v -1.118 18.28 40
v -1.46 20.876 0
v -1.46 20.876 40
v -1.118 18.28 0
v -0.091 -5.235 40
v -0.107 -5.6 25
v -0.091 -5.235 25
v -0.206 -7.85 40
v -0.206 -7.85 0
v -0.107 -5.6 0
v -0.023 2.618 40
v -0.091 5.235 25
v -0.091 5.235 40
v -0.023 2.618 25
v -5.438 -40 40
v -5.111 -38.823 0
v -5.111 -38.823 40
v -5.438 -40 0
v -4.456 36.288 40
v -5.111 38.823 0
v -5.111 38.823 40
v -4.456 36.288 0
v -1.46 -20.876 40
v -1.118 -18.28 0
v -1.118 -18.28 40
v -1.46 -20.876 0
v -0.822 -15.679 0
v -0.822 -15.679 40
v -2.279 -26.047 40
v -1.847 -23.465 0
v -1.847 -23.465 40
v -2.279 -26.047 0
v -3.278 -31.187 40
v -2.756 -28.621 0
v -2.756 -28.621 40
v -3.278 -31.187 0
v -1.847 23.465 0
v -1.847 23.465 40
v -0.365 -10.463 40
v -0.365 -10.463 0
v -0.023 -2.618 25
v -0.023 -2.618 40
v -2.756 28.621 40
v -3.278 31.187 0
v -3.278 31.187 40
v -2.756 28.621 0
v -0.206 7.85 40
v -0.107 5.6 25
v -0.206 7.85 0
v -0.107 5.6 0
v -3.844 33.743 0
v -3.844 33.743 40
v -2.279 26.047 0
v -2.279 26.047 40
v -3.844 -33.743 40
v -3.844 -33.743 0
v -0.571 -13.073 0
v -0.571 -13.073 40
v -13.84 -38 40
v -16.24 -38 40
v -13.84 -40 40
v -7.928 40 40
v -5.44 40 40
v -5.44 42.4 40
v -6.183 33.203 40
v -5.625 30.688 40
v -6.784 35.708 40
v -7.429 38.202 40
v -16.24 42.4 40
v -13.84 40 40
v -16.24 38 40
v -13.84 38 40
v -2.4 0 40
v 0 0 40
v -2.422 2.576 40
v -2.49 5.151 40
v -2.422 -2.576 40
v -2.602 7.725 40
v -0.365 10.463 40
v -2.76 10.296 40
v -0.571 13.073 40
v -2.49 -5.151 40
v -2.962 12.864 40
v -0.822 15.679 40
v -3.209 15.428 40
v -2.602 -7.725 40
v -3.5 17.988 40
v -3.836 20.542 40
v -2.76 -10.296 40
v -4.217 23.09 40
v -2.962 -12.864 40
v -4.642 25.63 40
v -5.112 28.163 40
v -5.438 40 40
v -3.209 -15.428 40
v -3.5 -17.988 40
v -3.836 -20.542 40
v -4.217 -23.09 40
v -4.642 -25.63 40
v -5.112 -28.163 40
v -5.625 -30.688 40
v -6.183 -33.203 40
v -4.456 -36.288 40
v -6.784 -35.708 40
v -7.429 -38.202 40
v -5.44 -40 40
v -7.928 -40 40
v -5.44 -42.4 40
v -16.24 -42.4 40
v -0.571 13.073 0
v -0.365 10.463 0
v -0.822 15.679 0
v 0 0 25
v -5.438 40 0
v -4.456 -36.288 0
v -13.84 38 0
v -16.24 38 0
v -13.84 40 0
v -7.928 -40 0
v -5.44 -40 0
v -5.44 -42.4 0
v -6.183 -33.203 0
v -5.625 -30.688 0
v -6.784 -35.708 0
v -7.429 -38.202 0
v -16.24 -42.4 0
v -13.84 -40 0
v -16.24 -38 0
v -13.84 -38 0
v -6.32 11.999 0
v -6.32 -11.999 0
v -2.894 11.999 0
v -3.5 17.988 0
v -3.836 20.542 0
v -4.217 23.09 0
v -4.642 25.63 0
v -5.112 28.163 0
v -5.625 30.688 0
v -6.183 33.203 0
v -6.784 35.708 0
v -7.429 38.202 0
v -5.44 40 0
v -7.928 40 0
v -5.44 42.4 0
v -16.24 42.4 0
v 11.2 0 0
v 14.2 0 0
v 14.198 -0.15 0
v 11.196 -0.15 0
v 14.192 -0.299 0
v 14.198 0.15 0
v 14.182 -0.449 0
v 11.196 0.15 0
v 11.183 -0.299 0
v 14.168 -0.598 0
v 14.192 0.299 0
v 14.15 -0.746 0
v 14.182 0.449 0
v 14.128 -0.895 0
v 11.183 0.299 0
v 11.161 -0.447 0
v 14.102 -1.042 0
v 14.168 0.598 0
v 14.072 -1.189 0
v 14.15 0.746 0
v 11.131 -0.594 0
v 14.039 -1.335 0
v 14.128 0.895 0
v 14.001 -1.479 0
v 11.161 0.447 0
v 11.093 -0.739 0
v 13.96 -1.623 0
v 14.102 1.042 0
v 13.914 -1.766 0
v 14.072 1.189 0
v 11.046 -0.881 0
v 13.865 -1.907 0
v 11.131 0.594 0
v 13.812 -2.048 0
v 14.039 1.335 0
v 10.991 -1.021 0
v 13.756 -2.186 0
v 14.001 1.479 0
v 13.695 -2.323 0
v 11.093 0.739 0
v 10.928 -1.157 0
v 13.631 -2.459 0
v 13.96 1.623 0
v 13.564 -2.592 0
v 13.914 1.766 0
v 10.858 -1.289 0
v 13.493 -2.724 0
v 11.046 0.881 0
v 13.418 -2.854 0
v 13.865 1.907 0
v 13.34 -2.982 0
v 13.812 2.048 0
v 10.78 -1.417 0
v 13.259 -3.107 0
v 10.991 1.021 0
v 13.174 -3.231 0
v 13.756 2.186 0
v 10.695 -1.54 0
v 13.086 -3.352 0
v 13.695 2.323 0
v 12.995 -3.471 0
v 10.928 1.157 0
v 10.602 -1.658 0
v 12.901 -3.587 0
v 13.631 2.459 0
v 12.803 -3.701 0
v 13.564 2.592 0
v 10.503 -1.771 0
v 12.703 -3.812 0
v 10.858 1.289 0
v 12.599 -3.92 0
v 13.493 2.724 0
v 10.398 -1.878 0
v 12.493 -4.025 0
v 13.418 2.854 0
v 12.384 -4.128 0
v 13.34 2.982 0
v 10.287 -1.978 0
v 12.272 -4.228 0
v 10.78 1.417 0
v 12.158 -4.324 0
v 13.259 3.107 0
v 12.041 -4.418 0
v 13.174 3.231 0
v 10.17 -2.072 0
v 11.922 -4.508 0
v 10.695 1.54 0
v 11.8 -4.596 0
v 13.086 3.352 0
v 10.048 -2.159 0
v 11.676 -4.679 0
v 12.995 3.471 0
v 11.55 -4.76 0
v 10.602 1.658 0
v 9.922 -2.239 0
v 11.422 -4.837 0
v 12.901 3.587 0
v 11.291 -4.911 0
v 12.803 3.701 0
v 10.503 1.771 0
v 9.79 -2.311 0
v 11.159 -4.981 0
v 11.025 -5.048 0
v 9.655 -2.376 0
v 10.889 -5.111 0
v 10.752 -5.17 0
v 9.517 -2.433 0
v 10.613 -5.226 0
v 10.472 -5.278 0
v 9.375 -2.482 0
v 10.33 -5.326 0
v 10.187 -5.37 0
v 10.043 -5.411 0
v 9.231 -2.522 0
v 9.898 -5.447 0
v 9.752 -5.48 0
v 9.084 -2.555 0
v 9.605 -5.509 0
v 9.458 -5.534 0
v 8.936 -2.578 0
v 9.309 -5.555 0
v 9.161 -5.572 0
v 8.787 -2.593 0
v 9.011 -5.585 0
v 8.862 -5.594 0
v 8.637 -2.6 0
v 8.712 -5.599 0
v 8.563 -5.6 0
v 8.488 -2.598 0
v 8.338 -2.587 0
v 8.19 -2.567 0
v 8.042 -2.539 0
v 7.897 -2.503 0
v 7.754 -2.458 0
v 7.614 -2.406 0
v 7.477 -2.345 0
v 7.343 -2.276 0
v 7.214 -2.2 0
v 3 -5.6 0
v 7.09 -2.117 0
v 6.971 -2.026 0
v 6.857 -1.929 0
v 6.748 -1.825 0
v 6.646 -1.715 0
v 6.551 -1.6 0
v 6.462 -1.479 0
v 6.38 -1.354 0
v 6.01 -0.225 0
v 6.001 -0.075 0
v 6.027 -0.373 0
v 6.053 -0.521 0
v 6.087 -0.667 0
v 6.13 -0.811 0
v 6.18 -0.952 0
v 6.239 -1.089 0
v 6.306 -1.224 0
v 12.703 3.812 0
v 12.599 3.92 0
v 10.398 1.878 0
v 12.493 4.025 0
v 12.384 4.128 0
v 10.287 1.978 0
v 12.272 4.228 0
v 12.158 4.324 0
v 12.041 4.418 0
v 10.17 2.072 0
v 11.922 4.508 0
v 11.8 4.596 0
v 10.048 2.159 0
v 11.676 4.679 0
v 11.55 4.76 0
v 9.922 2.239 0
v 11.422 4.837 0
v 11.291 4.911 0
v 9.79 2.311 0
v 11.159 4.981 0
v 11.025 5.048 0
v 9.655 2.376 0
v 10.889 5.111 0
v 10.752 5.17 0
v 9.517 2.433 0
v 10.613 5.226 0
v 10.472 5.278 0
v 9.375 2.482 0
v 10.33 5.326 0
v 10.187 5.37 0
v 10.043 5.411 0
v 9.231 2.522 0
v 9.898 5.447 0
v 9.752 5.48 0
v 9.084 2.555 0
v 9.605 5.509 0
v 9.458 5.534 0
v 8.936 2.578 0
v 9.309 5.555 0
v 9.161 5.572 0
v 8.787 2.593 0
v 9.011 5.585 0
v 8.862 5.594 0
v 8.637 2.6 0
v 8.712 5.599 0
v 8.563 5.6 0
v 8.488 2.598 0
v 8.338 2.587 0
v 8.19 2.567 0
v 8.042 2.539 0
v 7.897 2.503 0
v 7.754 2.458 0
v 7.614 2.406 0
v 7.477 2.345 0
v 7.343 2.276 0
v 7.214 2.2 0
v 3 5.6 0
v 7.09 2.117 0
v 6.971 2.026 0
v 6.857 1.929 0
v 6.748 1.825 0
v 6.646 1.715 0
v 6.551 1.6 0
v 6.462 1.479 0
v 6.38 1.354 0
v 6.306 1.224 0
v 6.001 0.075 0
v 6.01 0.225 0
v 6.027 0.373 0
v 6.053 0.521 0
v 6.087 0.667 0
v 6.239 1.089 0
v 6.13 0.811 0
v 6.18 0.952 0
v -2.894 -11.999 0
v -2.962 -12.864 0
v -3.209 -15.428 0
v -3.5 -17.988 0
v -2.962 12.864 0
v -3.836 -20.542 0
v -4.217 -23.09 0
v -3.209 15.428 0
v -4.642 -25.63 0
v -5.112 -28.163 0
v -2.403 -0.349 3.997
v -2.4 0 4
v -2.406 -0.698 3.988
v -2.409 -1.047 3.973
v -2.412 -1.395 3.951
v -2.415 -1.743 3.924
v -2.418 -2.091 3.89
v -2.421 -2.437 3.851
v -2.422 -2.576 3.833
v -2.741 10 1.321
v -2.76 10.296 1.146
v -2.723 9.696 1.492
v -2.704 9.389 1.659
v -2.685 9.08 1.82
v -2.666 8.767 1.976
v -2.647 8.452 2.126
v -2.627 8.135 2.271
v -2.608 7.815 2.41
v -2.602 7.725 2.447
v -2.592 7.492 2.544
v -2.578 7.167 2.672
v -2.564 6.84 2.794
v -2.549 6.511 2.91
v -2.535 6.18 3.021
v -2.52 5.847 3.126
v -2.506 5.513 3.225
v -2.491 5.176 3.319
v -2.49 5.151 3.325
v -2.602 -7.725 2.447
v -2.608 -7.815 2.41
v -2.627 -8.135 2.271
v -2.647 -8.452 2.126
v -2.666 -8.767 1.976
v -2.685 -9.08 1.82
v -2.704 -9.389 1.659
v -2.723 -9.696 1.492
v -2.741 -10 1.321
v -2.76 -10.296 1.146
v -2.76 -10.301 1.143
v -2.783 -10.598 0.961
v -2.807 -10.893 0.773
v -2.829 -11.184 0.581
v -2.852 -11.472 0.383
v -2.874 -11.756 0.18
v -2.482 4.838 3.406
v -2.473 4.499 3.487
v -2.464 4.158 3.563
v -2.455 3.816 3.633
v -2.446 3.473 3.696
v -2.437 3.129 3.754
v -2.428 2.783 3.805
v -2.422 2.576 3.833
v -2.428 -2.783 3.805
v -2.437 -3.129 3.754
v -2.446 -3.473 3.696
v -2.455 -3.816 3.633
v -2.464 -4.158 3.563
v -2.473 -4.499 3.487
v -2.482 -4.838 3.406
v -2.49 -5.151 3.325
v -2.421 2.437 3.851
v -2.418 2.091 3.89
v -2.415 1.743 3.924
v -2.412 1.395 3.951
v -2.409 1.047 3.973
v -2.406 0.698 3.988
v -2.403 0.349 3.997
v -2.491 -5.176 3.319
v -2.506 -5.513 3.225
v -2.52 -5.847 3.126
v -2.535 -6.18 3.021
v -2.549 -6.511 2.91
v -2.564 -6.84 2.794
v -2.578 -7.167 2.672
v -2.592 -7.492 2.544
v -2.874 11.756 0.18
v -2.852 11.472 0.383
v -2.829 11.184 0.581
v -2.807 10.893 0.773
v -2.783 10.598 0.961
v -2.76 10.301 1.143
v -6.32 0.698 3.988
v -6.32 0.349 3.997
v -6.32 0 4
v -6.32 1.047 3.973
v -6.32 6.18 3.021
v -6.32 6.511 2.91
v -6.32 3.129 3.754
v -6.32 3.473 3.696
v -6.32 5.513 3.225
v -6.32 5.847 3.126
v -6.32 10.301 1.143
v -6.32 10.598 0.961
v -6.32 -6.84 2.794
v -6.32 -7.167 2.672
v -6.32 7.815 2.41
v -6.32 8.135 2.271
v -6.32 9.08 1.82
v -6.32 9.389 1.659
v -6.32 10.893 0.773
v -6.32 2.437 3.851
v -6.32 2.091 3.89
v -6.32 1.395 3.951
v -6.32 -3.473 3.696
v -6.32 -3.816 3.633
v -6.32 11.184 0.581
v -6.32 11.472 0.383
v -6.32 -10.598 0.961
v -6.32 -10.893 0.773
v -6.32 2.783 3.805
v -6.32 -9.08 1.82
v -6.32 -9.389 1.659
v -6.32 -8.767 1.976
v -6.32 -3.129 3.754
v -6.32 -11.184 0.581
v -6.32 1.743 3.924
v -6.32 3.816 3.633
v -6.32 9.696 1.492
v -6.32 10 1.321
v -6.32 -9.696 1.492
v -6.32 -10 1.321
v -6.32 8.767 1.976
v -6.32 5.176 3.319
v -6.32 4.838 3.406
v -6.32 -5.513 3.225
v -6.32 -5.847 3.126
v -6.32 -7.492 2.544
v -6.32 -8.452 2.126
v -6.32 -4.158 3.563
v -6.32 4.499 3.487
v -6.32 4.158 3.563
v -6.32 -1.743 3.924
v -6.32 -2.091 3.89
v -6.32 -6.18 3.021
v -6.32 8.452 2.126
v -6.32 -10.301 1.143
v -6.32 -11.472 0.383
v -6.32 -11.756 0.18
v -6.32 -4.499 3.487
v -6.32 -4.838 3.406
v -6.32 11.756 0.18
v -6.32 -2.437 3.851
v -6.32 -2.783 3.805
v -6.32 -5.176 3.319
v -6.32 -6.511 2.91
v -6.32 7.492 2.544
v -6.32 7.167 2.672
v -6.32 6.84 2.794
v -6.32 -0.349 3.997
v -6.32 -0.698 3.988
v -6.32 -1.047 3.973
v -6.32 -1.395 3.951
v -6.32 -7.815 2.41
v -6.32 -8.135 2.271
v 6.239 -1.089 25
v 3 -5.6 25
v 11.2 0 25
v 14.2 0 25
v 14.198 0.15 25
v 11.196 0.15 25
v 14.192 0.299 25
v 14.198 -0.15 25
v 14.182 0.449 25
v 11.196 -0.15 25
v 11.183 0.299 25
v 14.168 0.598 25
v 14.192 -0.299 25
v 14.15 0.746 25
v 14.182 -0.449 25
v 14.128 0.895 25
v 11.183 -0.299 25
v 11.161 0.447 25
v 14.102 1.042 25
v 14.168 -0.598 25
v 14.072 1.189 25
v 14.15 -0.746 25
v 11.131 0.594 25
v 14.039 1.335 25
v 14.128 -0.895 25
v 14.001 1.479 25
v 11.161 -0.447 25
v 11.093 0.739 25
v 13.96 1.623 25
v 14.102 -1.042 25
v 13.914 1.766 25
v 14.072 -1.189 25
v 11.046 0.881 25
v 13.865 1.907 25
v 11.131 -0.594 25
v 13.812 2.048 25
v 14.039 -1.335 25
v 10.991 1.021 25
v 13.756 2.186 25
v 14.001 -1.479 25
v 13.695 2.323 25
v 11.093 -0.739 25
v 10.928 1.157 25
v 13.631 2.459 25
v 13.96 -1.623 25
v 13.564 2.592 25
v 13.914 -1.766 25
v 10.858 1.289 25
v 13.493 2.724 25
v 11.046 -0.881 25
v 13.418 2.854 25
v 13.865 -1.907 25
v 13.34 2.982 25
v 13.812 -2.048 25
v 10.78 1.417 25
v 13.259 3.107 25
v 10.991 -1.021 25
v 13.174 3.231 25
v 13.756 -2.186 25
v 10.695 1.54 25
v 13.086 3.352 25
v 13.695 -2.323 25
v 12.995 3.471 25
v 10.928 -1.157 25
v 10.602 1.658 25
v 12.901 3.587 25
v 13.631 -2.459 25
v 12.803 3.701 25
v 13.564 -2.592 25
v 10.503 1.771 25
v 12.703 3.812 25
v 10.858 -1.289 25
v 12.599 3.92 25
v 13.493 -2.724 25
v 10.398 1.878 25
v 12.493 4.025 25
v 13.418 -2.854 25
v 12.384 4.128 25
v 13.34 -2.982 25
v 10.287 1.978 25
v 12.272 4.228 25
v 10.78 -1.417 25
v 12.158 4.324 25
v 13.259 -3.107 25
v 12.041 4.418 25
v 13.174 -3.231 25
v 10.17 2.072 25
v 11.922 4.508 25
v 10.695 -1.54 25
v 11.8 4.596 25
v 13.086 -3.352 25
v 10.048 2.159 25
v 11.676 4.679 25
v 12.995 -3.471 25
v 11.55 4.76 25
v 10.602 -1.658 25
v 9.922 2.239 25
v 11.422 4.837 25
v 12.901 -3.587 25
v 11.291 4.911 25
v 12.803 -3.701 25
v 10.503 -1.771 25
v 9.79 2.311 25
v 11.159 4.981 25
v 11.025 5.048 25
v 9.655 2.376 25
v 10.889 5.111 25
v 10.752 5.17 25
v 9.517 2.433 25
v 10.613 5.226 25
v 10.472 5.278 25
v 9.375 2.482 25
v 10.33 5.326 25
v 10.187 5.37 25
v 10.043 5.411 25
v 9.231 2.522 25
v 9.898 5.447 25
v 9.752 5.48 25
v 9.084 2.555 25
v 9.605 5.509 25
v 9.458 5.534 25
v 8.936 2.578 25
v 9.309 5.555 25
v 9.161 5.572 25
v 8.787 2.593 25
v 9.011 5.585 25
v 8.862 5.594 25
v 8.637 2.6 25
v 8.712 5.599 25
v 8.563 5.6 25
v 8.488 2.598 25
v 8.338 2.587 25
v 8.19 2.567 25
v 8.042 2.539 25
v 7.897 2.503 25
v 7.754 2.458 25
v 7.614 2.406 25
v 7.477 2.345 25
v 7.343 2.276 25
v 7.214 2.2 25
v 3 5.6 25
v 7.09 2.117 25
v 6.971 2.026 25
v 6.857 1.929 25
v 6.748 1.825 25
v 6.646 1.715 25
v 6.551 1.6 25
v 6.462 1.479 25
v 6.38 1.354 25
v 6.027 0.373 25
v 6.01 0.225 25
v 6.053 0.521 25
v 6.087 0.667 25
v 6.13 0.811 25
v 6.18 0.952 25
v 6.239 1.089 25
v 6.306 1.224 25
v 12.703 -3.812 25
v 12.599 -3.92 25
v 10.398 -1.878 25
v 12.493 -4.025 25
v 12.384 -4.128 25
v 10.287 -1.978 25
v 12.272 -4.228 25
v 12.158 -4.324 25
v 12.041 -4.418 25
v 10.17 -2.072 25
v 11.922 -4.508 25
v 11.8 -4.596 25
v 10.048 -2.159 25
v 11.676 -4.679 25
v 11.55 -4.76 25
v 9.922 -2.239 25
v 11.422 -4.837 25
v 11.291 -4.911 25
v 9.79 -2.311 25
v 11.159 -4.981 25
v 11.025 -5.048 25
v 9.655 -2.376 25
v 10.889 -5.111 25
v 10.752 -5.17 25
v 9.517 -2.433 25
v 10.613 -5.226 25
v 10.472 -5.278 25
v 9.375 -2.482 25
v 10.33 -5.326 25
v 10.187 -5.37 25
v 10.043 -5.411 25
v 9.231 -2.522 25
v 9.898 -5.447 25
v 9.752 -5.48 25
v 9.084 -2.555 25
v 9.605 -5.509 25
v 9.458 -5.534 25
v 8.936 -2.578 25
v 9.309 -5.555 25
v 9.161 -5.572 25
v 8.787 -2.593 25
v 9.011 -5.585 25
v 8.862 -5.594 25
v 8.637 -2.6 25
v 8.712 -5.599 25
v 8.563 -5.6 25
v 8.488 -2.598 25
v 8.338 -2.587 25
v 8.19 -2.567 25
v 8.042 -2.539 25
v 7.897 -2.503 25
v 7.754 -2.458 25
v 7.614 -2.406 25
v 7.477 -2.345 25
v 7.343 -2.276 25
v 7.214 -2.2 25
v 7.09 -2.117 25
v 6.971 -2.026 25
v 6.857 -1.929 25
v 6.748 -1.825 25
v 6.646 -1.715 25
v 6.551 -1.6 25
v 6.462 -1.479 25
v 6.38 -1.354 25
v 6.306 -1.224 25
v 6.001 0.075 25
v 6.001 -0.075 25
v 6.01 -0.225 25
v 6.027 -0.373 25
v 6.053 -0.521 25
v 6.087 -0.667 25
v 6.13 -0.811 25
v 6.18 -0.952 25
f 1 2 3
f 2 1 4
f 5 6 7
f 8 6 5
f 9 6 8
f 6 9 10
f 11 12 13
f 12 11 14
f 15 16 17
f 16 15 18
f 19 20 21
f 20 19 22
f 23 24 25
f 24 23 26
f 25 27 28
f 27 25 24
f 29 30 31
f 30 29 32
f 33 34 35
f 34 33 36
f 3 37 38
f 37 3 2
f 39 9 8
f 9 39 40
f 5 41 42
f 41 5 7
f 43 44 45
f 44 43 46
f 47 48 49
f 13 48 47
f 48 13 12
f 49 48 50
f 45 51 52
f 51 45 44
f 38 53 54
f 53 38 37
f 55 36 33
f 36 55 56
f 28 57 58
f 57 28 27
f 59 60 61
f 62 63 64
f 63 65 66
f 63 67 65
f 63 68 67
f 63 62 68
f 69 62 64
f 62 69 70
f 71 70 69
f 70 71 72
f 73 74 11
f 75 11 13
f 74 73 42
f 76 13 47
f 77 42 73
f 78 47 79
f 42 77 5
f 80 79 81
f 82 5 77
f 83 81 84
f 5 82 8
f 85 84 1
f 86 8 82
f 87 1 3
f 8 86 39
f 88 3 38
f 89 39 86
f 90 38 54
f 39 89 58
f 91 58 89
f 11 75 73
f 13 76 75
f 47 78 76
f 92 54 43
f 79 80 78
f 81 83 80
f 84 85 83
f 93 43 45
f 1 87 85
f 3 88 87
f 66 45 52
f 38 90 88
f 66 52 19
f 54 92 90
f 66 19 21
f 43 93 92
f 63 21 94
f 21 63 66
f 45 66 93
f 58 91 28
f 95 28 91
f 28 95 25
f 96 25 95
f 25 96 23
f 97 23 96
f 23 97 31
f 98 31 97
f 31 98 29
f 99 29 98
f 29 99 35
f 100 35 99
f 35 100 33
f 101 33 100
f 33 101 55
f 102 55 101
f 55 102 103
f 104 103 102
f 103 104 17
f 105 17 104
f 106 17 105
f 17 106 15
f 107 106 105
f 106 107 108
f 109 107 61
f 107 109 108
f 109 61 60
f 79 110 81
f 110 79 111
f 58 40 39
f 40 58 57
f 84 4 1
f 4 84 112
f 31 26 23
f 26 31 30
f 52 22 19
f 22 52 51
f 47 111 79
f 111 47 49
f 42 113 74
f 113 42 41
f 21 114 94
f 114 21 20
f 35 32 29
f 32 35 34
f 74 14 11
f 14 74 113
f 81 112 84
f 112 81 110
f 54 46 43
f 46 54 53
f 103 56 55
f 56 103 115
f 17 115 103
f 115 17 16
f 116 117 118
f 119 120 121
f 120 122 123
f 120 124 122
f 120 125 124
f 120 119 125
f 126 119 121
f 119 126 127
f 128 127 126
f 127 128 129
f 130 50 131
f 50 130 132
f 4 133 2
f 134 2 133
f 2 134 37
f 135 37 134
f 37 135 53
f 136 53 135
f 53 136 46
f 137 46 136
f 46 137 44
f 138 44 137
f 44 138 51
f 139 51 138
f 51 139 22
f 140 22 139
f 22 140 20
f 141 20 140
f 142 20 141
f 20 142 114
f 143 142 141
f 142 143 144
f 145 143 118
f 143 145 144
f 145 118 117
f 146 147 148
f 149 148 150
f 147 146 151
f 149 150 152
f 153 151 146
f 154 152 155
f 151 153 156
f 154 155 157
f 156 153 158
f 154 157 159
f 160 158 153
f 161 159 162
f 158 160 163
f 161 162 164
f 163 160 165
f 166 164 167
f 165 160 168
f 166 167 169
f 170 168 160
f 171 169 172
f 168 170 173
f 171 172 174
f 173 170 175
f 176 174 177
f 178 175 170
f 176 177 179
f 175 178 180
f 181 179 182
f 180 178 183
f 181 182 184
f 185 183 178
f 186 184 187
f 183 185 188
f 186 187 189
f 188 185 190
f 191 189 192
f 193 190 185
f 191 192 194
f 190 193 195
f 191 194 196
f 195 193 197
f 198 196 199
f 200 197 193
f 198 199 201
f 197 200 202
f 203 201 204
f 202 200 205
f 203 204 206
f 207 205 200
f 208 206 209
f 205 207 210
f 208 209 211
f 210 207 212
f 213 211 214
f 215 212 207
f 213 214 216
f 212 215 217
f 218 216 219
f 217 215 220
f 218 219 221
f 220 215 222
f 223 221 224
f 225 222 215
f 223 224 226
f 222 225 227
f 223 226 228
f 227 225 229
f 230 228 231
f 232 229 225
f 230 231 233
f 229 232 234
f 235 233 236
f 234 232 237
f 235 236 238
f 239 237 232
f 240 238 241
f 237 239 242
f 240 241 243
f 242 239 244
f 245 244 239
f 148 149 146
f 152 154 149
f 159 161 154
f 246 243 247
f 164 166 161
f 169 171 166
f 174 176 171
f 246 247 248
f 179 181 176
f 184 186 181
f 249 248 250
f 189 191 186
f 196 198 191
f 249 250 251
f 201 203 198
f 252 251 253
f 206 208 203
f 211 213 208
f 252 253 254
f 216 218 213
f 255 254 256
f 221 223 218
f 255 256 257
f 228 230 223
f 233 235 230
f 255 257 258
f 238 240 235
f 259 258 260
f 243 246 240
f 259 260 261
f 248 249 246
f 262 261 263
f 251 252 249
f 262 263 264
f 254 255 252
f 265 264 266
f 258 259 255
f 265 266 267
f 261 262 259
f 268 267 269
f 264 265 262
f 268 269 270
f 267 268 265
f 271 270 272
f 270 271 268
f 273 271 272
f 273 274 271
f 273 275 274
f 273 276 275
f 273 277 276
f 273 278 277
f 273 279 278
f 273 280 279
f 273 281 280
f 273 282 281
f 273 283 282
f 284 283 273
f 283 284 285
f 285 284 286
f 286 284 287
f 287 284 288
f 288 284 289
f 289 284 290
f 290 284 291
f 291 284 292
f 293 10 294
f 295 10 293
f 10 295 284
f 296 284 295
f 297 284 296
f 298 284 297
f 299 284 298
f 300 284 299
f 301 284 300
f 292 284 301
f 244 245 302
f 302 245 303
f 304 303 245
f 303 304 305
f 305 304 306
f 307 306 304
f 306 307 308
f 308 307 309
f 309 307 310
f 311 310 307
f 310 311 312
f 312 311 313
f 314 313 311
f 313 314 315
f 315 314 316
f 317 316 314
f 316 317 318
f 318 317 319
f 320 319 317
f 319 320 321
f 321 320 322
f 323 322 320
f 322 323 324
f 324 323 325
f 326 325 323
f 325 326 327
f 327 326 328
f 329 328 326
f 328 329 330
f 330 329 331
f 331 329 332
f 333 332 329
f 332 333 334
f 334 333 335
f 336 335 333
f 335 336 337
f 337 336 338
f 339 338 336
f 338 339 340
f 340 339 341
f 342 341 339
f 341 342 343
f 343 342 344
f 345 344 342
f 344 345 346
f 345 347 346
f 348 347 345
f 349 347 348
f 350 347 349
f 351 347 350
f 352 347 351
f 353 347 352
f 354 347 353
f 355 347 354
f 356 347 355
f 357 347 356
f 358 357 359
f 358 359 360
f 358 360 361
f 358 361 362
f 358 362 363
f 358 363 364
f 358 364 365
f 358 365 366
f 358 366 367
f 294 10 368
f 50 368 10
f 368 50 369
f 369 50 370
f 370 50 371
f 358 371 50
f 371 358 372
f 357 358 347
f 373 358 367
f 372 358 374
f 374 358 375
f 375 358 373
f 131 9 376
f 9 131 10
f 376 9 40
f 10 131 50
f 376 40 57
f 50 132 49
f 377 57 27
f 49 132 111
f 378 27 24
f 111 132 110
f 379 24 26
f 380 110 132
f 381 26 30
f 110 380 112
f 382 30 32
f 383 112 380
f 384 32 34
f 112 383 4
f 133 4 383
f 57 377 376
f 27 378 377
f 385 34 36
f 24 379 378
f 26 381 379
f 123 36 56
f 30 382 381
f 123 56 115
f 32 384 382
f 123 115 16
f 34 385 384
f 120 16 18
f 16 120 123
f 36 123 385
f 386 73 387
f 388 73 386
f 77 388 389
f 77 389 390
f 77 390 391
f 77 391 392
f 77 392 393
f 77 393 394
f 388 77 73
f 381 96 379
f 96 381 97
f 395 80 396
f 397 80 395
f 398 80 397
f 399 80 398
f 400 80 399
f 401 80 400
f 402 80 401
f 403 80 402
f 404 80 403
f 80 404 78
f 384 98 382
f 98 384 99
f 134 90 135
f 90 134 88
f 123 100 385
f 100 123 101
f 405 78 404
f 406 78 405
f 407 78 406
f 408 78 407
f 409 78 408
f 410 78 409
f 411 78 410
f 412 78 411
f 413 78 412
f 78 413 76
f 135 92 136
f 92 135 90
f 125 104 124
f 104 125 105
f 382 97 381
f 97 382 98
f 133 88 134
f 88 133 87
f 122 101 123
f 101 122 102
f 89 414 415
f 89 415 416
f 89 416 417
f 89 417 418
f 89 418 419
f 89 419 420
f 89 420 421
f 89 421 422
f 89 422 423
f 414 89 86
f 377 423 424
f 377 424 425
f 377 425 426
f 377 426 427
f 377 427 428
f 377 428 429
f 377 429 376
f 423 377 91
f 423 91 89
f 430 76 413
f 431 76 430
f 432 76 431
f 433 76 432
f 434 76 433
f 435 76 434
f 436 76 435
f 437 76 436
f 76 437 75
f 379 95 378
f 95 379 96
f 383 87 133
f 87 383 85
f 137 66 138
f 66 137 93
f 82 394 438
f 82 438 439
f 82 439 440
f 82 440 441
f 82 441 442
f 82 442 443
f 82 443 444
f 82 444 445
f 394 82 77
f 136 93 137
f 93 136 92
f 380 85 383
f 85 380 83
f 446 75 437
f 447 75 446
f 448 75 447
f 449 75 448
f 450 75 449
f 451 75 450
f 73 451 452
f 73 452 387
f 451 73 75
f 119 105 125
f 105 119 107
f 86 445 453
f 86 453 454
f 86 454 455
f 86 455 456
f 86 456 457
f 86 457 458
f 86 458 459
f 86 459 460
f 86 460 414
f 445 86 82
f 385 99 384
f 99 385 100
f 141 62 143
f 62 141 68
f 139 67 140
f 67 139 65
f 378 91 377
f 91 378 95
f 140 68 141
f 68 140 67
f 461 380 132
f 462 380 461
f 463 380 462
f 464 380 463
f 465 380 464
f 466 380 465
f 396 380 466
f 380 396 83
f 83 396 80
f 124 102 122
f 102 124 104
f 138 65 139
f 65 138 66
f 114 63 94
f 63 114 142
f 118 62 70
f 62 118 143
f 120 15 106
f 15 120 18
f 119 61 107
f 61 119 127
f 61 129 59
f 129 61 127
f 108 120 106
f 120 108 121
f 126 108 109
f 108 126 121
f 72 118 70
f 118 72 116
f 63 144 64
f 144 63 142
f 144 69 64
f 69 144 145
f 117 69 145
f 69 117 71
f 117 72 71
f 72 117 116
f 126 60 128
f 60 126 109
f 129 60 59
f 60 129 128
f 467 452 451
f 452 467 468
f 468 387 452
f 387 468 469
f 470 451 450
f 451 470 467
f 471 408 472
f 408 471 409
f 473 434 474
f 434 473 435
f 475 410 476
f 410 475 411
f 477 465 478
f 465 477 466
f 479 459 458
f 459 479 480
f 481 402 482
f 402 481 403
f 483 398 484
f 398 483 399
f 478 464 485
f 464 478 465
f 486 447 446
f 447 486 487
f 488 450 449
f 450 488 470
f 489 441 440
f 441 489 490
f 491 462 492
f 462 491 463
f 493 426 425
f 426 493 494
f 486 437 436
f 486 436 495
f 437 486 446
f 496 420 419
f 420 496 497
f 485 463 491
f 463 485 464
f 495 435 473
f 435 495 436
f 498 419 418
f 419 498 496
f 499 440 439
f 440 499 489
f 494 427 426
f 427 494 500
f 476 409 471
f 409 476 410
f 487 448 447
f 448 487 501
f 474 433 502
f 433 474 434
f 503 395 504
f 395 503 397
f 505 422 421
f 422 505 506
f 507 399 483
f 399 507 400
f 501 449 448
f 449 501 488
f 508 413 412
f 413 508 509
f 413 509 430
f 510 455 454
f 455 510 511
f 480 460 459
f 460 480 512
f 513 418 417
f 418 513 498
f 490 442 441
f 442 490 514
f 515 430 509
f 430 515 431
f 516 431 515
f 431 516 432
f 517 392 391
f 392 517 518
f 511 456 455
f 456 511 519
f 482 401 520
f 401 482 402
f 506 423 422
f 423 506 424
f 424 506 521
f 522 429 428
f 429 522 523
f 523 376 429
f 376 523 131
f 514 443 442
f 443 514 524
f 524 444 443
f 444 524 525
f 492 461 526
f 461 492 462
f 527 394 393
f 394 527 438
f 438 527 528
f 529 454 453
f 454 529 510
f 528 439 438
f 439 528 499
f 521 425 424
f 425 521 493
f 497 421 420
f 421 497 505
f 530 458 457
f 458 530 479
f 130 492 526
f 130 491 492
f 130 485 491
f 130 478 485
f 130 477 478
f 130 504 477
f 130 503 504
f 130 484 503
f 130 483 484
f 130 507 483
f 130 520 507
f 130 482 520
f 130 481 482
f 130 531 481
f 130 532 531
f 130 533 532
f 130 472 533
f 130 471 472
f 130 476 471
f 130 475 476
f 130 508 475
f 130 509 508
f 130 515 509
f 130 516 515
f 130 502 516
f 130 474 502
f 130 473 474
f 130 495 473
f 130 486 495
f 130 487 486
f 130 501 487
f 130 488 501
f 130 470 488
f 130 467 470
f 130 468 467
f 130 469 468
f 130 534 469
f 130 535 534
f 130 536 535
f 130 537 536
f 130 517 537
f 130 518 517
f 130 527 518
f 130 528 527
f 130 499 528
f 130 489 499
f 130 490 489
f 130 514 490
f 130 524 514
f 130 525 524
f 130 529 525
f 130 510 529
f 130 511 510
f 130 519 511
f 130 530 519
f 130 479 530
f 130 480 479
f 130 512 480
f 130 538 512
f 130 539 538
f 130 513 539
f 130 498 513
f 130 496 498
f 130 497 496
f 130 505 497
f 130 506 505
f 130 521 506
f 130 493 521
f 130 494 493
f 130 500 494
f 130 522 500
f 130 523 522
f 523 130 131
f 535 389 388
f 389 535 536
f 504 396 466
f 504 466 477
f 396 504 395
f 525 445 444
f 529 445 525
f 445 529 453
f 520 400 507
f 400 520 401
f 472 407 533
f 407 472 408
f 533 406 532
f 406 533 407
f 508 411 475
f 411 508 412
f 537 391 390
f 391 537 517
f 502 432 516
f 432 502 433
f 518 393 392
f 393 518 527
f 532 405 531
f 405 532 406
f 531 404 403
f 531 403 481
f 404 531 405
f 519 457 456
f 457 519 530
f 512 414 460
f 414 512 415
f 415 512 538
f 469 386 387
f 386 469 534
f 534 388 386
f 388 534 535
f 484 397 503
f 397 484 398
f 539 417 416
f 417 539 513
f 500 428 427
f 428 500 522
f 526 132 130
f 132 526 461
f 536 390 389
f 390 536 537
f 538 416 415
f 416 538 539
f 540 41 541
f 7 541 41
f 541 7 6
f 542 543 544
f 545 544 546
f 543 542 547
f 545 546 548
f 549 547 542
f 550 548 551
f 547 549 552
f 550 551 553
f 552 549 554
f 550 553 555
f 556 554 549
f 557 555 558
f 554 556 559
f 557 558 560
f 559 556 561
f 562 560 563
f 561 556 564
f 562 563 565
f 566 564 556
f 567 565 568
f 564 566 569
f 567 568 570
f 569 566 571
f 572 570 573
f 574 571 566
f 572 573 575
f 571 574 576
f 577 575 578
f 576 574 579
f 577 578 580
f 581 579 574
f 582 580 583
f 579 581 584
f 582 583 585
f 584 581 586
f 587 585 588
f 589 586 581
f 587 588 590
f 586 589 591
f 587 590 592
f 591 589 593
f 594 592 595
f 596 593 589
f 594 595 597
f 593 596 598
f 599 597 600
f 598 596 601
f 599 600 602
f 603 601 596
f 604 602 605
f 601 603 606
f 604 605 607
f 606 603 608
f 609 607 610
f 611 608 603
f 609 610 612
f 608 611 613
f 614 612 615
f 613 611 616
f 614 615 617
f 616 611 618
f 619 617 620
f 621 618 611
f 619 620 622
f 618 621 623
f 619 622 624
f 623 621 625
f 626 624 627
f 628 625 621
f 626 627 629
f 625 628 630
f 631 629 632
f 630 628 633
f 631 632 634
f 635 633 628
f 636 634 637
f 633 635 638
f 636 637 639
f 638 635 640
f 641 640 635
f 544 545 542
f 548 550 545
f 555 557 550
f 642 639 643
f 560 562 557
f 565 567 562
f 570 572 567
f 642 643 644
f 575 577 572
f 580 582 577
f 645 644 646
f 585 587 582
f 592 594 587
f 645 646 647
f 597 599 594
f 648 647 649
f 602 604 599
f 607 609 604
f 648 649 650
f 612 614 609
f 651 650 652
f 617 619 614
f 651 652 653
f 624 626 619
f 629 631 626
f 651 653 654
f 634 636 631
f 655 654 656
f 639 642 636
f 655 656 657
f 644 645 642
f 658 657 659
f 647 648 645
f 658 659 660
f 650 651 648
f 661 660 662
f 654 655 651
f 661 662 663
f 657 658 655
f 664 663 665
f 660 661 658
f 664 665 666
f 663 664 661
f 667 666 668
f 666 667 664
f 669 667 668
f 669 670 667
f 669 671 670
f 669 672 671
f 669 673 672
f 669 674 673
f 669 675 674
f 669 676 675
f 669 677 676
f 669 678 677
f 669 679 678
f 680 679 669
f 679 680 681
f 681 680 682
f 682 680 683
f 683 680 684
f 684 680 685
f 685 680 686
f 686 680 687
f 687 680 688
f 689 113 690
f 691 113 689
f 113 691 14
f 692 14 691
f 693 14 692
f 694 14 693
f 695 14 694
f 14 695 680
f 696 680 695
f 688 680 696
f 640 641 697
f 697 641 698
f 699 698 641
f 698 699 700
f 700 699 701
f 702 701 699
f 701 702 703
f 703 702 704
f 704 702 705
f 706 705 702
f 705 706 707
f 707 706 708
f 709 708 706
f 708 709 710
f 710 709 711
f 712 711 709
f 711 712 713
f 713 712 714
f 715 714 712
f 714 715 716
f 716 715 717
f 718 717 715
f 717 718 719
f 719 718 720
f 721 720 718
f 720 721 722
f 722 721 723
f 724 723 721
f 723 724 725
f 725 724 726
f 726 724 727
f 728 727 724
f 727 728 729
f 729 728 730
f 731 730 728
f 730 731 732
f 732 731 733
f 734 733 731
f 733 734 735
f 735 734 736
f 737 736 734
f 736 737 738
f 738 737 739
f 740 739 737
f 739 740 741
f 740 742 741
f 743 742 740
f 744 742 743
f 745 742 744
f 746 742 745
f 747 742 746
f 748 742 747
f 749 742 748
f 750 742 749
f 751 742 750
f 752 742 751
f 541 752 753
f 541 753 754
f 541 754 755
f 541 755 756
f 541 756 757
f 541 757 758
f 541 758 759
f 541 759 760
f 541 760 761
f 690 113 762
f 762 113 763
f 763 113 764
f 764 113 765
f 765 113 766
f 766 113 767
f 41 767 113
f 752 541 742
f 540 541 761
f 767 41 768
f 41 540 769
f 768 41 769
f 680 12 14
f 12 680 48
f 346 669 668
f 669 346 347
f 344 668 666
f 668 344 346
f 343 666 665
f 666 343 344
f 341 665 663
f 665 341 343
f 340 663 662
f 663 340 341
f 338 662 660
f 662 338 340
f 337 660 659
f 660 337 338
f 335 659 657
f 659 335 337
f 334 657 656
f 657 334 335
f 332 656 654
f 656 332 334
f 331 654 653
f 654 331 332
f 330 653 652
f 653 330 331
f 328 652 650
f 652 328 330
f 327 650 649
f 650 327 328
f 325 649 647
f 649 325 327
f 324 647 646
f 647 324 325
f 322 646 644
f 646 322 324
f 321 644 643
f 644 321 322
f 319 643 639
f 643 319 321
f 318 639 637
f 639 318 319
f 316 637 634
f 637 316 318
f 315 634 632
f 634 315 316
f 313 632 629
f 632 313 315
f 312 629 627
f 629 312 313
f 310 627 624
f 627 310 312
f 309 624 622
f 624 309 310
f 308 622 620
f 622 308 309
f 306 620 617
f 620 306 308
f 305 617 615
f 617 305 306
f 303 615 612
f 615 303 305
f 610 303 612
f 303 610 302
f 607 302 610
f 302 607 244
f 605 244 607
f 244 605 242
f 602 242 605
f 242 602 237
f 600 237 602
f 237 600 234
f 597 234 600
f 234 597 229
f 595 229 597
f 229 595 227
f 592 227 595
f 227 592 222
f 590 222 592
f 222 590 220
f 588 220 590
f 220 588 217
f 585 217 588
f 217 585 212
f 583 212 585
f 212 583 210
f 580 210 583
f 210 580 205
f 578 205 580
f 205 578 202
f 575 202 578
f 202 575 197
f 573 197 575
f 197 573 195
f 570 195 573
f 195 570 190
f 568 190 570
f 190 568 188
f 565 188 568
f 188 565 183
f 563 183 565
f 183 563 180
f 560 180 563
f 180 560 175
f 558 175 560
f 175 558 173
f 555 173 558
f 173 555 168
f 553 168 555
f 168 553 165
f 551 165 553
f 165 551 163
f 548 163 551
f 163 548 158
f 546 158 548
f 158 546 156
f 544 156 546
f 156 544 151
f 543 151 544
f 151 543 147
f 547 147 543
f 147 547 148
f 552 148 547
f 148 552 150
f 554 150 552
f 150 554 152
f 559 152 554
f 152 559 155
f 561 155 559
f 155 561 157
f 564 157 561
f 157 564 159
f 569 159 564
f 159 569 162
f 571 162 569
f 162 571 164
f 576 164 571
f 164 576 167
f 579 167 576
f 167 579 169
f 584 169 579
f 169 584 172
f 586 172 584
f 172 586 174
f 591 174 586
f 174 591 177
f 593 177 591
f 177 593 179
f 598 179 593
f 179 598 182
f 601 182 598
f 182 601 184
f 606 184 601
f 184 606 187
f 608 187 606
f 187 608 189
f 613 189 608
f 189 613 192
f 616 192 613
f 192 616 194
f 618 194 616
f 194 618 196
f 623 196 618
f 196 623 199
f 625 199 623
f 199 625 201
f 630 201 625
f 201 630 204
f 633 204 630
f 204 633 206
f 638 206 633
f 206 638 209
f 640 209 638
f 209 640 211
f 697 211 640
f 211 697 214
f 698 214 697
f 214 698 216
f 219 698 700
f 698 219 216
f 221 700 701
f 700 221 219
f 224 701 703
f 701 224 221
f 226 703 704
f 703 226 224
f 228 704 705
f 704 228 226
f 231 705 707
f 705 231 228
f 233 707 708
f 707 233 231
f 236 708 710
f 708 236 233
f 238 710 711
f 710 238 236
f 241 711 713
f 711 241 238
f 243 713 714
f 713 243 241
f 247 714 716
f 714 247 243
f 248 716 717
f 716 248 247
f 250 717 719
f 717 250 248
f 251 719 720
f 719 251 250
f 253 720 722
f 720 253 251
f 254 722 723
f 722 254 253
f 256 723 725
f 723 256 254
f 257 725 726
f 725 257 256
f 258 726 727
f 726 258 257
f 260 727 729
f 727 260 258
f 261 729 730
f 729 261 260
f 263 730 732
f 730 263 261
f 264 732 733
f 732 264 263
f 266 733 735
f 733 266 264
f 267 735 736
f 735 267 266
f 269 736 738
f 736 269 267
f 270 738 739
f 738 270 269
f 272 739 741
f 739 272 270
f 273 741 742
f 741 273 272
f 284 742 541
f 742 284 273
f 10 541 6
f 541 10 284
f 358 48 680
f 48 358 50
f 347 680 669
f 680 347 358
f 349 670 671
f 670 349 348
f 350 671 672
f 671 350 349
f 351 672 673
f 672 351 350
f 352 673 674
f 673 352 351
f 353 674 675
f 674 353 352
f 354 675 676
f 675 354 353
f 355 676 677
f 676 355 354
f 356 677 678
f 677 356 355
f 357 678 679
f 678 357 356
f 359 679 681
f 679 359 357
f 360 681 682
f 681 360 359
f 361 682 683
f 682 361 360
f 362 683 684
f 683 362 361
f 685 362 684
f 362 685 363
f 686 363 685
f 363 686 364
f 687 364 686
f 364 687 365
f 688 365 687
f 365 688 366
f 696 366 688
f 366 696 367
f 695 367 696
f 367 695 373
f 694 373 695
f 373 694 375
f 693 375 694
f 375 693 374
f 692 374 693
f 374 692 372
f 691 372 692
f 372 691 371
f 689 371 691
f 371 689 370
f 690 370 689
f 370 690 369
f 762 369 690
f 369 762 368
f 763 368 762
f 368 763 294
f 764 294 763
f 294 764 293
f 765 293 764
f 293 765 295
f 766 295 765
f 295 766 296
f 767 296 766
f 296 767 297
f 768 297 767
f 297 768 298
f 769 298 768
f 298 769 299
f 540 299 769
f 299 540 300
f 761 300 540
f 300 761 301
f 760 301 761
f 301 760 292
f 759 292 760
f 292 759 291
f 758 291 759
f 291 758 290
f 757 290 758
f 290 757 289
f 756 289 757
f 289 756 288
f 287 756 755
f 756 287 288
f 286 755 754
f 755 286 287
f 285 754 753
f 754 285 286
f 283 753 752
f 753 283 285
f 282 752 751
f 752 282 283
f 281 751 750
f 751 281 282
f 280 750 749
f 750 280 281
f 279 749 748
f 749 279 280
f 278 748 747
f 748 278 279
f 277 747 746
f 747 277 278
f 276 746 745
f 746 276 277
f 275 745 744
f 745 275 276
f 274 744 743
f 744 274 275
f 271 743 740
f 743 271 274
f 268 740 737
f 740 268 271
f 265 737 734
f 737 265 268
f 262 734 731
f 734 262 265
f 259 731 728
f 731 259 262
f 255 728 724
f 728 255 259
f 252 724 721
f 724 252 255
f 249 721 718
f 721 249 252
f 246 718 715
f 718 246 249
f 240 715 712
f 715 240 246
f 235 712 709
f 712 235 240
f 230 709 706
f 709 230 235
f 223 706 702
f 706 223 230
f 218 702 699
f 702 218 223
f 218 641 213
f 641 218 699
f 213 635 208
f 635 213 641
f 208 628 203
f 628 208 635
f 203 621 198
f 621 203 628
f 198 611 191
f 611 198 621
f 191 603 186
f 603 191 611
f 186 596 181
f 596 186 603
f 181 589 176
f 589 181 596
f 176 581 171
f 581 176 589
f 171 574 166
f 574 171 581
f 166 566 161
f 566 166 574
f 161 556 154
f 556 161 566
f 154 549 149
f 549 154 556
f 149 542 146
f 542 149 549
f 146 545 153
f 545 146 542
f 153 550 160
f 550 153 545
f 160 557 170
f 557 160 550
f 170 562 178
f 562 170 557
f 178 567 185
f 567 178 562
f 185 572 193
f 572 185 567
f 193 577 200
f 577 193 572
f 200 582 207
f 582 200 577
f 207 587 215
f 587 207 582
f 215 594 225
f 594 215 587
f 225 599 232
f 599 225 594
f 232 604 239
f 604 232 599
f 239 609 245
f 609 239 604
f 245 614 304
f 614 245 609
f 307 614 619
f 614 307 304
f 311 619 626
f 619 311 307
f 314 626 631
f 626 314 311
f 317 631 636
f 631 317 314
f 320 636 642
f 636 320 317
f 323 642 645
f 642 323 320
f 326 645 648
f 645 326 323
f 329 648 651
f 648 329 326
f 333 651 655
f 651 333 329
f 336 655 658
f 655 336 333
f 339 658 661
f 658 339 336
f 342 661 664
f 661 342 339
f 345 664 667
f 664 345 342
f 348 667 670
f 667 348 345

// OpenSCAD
$fa = 1;
$fs = 0.15;

clip_w = 80;
clip_d = 6;
clip_hook = 2;
clip_h = 40;

thickness = 2.4;
r = 150;
magic = 5.44;

module bracket() {
  intersection() {
    translate([r, 0, 0])
    difference() {
      cylinder(r = r, h = clip_h, center = true);
      cylinder(r = r-thickness, h = clip_h, center = true);
    }
    cube([20, clip_w, clip_h], center = true);
  }
  translate([magic+(clip_d+thickness)/2, -(clip_w/2+thickness/2), 0])
    cube([clip_d+thickness, thickness, clip_h], center = true);


  translate([magic+(clip_d+thickness)/2, (clip_w/2+thickness/2), 0])
    cube([clip_d+thickness, thickness, clip_h], center = true);

  translate([magic+clip_d+thickness*1.5, (clip_w/2+thickness/2-clip_hook/2), 0])
    cube([thickness, thickness+clip_hook, clip_h], center = true);

  translate([magic+clip_d+thickness*1.5, -(clip_w/2+thickness/2-clip_hook/2), 0])
    cube([thickness, thickness+clip_hook, clip_h], center = true);
}

module catch() {
    d = 40;
    
    translate([-(d/2-4), 0, 0])
    intersection() {
        cylinder(h = 4, d = d, center = true);
        translate([d/2-2, 0, 0])
          cube([4, d, 4], center = true);
    }
}

h = 25;
d1 = 5.2;
side_wall = 3;
d2 = d1 + 2 * side_wall;
c = 4;
module hole() {
  h = 25;
  d1 = 5.2;
  side_wall = 3;
  d2 = d1 + 2 * side_wall;
  c = 4;
  
  linear_extrude(h, center = true)
  difference() {
    hull() {
      square([c, d2], center = true);
      translate([d2/2+c/2, 0, 0])
        circle(d = d2);
    }
    translate([c/2+d2/2, 0, 0])
      circle(d = d1);
  }
}


module model() {
  bracket();

  color("red")
  translate([thickness*1.8, 0, clip_h/2])
  rotate([0, 90, 0])
    catch();
  
  translate([-1, 0, (clip_h - h)/2])
  rotate([0, 0, 180])
    hole();  
}

translate([0, 0, clip_h/2])
rotate([0, 180, 0])
  model();
